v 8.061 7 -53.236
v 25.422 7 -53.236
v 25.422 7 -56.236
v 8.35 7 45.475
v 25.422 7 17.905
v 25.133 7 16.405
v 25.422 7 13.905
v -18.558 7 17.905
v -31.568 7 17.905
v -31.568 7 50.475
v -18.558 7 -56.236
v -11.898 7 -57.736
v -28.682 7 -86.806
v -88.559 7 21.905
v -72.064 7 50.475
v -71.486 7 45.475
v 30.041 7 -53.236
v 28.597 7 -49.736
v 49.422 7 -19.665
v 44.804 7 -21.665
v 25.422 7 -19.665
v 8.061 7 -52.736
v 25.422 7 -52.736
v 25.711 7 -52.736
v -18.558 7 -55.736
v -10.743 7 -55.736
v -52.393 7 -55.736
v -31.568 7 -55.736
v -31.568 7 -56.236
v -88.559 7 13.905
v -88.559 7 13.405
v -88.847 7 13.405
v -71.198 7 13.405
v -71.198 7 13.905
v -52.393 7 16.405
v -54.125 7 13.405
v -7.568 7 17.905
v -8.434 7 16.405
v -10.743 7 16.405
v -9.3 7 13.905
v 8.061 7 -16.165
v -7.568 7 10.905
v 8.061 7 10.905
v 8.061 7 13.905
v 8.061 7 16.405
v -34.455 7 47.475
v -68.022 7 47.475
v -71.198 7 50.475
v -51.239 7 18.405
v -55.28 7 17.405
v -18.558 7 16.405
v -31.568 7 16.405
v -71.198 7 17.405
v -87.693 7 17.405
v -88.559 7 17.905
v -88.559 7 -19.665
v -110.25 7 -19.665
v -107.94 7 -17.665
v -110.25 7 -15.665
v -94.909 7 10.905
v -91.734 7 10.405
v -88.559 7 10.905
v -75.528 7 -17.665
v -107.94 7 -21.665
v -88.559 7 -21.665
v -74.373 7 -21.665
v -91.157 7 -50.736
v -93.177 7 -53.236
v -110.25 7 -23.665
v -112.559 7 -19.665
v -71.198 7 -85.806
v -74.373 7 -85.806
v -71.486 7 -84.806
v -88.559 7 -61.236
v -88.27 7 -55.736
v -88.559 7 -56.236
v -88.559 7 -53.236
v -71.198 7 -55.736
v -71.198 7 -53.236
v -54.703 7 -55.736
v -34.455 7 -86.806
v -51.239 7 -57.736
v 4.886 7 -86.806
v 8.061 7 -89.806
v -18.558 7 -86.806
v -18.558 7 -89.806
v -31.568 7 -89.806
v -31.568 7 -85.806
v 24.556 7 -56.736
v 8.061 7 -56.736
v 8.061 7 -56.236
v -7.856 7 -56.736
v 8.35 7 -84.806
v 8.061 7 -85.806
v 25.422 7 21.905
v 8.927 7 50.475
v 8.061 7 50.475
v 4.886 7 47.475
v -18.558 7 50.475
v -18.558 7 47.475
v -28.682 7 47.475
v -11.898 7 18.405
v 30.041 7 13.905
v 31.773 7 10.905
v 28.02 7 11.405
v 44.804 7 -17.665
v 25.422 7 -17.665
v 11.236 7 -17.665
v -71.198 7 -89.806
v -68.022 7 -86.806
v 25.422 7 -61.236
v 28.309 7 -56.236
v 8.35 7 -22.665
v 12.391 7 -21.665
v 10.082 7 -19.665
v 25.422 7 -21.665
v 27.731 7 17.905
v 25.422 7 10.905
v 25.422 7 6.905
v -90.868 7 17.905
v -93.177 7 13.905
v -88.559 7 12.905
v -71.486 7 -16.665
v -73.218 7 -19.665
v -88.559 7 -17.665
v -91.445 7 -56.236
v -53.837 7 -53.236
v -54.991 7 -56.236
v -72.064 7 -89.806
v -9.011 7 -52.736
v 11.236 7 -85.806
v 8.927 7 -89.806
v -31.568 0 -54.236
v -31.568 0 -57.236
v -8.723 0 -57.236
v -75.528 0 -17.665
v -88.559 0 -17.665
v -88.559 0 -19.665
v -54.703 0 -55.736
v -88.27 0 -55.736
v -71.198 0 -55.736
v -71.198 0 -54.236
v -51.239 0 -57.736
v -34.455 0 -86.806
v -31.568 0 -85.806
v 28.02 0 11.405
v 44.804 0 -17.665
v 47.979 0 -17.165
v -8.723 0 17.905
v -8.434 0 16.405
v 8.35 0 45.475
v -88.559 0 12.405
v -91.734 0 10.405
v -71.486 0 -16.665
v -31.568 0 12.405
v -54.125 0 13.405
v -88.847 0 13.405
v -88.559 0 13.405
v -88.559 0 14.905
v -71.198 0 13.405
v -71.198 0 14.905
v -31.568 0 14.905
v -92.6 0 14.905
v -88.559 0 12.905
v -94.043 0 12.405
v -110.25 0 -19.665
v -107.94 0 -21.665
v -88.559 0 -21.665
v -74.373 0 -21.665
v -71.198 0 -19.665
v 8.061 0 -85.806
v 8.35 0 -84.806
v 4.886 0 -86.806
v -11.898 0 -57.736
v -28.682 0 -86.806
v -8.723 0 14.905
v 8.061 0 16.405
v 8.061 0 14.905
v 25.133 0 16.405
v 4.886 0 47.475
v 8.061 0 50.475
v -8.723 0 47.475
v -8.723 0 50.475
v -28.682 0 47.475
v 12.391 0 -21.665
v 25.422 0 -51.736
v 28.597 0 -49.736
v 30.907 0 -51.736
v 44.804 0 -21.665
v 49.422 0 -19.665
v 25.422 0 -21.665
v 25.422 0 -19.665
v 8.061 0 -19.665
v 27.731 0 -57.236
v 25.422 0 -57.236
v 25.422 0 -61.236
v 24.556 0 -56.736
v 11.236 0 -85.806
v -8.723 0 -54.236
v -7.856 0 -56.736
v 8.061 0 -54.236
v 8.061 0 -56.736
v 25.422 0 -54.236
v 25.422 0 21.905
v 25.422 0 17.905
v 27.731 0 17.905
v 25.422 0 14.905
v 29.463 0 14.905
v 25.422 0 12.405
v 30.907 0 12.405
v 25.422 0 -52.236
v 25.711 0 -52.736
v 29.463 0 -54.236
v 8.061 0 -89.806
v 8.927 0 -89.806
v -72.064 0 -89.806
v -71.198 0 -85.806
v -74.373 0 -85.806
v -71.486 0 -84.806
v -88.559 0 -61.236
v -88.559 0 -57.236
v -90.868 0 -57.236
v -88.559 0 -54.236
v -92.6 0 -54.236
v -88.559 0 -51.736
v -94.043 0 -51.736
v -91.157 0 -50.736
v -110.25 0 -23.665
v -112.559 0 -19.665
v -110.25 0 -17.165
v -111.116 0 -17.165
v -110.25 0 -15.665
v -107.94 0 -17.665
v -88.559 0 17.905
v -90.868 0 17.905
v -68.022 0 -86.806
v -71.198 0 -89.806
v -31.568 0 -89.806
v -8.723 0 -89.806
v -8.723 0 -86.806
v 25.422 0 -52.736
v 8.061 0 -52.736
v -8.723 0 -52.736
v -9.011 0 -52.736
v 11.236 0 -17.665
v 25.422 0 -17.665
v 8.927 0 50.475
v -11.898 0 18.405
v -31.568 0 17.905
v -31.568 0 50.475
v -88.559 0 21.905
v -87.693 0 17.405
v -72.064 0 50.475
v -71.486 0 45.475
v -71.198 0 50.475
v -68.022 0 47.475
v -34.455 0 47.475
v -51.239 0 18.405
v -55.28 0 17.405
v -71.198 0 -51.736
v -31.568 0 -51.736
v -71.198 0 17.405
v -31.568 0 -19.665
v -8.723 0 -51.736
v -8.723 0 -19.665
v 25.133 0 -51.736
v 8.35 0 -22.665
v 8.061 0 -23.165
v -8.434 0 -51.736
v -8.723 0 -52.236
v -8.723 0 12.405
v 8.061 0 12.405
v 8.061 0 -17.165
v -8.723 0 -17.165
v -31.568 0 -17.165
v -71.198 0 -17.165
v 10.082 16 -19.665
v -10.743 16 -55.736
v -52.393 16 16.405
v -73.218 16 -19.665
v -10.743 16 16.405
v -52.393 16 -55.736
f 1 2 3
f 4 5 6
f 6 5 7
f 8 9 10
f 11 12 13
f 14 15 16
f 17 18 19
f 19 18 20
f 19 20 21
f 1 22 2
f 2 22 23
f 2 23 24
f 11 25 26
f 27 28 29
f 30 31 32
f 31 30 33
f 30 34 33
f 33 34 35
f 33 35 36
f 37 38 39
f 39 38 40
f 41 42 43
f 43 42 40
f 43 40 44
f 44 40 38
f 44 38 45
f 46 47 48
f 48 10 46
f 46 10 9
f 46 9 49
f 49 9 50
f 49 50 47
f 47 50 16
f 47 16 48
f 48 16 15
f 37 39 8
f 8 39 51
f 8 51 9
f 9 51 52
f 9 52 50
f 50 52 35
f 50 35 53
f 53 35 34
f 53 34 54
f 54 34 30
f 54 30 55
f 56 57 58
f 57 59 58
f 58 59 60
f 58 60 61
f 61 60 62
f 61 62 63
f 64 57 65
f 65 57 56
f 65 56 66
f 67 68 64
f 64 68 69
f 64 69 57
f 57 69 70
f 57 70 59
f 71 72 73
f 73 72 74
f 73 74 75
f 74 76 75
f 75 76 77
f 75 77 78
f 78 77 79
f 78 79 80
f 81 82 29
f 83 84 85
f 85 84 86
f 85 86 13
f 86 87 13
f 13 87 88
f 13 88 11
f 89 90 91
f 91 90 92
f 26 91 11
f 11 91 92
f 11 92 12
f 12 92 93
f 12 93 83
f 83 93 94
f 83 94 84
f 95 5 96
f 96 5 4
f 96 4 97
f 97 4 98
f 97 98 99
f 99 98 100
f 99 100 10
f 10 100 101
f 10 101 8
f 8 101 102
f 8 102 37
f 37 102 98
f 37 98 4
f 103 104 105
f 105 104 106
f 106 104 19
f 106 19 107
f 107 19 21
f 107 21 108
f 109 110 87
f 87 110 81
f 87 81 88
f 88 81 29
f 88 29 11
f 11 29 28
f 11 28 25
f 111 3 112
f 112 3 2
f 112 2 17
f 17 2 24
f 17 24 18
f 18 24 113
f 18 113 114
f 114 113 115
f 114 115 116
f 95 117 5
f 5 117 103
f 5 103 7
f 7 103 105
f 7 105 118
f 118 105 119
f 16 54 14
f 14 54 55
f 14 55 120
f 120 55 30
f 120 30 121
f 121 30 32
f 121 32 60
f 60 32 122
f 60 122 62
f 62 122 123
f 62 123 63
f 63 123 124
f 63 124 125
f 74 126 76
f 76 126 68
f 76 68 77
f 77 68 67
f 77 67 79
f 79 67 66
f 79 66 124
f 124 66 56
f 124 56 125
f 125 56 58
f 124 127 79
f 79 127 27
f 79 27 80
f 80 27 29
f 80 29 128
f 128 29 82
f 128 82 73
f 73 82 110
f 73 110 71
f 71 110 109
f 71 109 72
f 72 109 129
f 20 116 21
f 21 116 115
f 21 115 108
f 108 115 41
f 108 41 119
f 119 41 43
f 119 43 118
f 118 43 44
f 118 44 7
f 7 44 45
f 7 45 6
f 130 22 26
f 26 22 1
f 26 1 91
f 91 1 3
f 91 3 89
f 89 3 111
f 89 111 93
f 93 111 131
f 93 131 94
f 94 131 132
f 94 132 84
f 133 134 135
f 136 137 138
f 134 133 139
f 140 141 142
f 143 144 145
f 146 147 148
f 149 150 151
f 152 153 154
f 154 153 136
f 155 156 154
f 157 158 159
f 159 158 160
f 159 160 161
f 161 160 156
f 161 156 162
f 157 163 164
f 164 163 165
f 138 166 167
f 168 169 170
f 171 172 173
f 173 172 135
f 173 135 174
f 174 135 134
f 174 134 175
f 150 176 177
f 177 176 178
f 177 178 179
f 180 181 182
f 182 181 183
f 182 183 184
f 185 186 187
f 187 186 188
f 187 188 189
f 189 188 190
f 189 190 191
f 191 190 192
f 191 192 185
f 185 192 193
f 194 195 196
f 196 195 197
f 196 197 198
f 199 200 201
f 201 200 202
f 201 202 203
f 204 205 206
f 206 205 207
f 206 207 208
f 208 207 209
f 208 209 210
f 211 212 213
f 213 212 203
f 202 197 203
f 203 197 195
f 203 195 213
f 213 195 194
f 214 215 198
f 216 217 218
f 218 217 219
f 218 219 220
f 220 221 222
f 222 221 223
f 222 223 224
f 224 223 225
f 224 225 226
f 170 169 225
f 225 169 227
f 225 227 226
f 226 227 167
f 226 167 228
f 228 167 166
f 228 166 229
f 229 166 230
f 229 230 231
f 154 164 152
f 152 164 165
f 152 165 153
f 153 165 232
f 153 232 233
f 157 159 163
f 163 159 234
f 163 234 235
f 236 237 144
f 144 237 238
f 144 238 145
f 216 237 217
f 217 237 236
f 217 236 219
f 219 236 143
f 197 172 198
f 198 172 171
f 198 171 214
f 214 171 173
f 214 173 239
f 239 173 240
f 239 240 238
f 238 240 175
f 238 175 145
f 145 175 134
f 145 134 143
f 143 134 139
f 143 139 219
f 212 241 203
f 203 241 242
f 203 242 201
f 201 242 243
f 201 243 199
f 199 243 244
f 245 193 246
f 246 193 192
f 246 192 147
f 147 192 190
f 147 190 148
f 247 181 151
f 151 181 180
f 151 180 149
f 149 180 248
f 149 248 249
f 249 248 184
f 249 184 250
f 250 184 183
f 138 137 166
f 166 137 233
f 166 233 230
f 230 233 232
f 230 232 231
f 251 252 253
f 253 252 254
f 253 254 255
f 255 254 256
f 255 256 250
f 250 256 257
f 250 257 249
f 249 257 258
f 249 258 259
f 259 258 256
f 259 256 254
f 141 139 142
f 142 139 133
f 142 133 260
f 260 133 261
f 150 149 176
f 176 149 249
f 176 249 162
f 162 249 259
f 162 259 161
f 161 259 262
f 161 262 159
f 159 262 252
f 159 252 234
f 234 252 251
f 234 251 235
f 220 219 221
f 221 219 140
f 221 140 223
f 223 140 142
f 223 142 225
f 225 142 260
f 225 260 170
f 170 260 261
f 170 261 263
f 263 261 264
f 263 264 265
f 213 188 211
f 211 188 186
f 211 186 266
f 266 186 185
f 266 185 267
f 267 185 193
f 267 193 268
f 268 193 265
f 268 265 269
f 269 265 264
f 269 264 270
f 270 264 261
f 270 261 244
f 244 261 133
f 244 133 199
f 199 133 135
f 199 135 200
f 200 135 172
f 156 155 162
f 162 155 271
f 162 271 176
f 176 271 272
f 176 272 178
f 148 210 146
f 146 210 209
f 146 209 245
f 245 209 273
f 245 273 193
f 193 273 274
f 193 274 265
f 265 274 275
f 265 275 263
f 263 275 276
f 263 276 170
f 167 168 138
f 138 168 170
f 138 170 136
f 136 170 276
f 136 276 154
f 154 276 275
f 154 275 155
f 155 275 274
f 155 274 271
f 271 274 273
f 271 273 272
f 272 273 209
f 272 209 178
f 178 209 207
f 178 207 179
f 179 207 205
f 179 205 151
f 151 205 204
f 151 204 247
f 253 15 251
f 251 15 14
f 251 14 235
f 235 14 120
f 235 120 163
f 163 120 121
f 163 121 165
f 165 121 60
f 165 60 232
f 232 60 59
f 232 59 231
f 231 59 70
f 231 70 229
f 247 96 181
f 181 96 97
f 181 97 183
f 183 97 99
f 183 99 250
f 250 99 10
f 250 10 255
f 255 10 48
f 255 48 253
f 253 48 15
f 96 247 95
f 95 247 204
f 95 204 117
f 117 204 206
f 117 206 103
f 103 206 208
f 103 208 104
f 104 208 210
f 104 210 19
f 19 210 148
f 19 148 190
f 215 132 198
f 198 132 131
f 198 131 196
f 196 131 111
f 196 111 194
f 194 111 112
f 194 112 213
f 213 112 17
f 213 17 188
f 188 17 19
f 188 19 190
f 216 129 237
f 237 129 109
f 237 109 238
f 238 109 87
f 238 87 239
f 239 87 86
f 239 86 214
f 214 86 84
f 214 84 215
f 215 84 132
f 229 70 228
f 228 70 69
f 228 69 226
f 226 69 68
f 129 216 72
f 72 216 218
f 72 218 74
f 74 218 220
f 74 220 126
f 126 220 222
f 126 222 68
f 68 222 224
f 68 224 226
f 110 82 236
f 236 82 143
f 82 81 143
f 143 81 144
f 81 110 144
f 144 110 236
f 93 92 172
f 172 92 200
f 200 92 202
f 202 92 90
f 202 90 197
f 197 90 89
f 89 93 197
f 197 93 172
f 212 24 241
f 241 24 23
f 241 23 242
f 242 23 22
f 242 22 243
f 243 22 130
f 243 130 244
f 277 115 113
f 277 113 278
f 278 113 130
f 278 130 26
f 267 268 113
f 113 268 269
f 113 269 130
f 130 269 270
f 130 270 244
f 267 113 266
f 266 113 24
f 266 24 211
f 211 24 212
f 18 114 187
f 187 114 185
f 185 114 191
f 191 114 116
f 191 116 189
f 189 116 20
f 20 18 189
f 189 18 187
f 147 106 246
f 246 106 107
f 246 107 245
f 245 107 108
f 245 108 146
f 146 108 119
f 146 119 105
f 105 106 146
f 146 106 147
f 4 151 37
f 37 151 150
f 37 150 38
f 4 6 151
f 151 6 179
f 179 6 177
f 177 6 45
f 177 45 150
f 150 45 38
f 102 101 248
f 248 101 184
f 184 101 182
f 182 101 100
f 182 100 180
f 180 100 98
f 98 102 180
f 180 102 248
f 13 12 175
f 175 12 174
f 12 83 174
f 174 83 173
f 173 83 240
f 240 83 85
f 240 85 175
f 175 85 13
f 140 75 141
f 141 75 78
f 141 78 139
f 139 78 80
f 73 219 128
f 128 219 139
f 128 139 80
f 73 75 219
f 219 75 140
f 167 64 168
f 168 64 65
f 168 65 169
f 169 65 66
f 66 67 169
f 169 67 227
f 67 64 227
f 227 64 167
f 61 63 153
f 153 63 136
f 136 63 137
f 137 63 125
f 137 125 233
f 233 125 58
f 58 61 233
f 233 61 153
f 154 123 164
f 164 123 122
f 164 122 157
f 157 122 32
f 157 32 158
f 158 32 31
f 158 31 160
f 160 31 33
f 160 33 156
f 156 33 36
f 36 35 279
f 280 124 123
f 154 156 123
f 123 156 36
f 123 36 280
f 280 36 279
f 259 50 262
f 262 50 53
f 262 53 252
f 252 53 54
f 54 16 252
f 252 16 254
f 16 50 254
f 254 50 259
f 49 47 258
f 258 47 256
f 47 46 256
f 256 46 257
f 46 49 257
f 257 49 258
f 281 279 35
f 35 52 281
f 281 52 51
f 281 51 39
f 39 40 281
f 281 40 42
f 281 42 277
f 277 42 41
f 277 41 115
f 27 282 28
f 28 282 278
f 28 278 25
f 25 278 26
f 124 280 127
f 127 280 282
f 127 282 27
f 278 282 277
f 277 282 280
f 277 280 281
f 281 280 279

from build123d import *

# Parameters (mm, degrees)
EXTRUDE_1_DEPTH = 7
EXTRUDE_2_DEPTH = 9


with BuildPart() as part:
    # 草图1 → 凸台-拉伸1 (new body)
    with BuildSketch(Plane(origin=(0, 0, 0), x_dir=(1, 0, 0), z_dir=(0, 1, 0))):
        Polygon((-112.559101124, 19.665498127), (-92.311400749, -15.404547658), (-72.063700375, -50.474593443), (-31.568299625, -50.474593443), (8.927101124, -50.474593443), (29.174801498, -15.404547658), (49.422501873, 19.665498127), (29.174801498, 54.735543912), (8.927101124, 89.805589698), (-31.568299625, 89.805589698), (-72.063700375, 89.805589698), (-92.311400749, 54.735543912), align=None)
        Polygon((-68.02224849, 86.805589698), (-34.455050971, 86.805589698), (-51.23864973, 57.735543912), align=None, mode=Mode.SUBTRACT)
        Polygon((8.349750855, 84.805589697), (24.555999345, 56.735543912), (-7.856497635, 56.735543912), align=None, mode=Mode.SUBTRACT)
        Polygon((-9.011198174, 52.735543912), (8.349750855, 22.665498127), (25.710699883, 52.735543912), align=None, mode=Mode.SUBTRACT)
        Polygon((28.597451229, 49.735543912), (44.803699719, 21.665498127), (12.39120274, 21.665498127), align=None, mode=Mode.SUBTRACT)
        Polygon((11.2365022, 17.665498127), (28.02010096, -11.404547658), (44.803699719, 17.665498127), align=None, mode=Mode.SUBTRACT)
        Polygon((-8.433847905, -16.404547658), (25.133349614, -16.404547658), (8.349750854, -45.474593443), align=None, mode=Mode.SUBTRACT)
        Polygon((-11.89794952, -18.404547658), (4.885649239, -47.474593443), (-28.68154828, -47.474593443), align=None, mode=Mode.SUBTRACT)
        Polygon((-28.681548279, 86.805589698), (4.885649241, 86.805589698), (-11.897949519, 57.735543911), align=None, mode=Mode.SUBTRACT)
        Polygon((-88.269948864, 55.735543912), (-71.486350105, 84.805589697), (-54.702751346, 55.735543912), align=None, mode=Mode.SUBTRACT)
        Polygon((-107.940298969, 21.665498127), (-91.15670021, 50.735543912), (-74.373101451, 21.665498127), align=None, mode=Mode.SUBTRACT)
        Polygon((-75.52780199, 17.665498127), (-107.94029897, 17.665498127), (-91.73405048, -10.404547658), align=None, mode=Mode.SUBTRACT)
        Polygon((-88.847299134, -13.404547658), (-54.125401077, -13.404547658), (-71.486350105, 16.665498127), align=None, mode=Mode.SUBTRACT)
        Polygon((-68.02224849, -47.474593443), (-34.455050971, -47.474593443), (-51.238649731, -18.404547658), align=None, mode=Mode.SUBTRACT)
        Polygon((-87.692598596, -17.404547658), (-71.486350105, -45.474593443), (-55.280101615, -17.404547658), align=None, mode=Mode.SUBTRACT)
    extrude(amount=EXTRUDE_1_DEPTH)

    # 草图2 → 凸台-拉伸2 (add)
    with BuildSketch(Plane(origin=(0, 7, 0), x_dir=(1, 0, 0), z_dir=(0, 1, 0))):
        Polygon((-71.486350105, 16.665498127), (-73.218400913, 19.665498127), (-52.393350269, 55.735543912), (-10.743248982, 55.735543912), (10.081801662, 19.665498127), (-10.743248982, -16.404547658), (-52.393350269, -16.404547658), align=None)
    extrude(amount=EXTRUDE_2_DEPTH)


solid = part.part
